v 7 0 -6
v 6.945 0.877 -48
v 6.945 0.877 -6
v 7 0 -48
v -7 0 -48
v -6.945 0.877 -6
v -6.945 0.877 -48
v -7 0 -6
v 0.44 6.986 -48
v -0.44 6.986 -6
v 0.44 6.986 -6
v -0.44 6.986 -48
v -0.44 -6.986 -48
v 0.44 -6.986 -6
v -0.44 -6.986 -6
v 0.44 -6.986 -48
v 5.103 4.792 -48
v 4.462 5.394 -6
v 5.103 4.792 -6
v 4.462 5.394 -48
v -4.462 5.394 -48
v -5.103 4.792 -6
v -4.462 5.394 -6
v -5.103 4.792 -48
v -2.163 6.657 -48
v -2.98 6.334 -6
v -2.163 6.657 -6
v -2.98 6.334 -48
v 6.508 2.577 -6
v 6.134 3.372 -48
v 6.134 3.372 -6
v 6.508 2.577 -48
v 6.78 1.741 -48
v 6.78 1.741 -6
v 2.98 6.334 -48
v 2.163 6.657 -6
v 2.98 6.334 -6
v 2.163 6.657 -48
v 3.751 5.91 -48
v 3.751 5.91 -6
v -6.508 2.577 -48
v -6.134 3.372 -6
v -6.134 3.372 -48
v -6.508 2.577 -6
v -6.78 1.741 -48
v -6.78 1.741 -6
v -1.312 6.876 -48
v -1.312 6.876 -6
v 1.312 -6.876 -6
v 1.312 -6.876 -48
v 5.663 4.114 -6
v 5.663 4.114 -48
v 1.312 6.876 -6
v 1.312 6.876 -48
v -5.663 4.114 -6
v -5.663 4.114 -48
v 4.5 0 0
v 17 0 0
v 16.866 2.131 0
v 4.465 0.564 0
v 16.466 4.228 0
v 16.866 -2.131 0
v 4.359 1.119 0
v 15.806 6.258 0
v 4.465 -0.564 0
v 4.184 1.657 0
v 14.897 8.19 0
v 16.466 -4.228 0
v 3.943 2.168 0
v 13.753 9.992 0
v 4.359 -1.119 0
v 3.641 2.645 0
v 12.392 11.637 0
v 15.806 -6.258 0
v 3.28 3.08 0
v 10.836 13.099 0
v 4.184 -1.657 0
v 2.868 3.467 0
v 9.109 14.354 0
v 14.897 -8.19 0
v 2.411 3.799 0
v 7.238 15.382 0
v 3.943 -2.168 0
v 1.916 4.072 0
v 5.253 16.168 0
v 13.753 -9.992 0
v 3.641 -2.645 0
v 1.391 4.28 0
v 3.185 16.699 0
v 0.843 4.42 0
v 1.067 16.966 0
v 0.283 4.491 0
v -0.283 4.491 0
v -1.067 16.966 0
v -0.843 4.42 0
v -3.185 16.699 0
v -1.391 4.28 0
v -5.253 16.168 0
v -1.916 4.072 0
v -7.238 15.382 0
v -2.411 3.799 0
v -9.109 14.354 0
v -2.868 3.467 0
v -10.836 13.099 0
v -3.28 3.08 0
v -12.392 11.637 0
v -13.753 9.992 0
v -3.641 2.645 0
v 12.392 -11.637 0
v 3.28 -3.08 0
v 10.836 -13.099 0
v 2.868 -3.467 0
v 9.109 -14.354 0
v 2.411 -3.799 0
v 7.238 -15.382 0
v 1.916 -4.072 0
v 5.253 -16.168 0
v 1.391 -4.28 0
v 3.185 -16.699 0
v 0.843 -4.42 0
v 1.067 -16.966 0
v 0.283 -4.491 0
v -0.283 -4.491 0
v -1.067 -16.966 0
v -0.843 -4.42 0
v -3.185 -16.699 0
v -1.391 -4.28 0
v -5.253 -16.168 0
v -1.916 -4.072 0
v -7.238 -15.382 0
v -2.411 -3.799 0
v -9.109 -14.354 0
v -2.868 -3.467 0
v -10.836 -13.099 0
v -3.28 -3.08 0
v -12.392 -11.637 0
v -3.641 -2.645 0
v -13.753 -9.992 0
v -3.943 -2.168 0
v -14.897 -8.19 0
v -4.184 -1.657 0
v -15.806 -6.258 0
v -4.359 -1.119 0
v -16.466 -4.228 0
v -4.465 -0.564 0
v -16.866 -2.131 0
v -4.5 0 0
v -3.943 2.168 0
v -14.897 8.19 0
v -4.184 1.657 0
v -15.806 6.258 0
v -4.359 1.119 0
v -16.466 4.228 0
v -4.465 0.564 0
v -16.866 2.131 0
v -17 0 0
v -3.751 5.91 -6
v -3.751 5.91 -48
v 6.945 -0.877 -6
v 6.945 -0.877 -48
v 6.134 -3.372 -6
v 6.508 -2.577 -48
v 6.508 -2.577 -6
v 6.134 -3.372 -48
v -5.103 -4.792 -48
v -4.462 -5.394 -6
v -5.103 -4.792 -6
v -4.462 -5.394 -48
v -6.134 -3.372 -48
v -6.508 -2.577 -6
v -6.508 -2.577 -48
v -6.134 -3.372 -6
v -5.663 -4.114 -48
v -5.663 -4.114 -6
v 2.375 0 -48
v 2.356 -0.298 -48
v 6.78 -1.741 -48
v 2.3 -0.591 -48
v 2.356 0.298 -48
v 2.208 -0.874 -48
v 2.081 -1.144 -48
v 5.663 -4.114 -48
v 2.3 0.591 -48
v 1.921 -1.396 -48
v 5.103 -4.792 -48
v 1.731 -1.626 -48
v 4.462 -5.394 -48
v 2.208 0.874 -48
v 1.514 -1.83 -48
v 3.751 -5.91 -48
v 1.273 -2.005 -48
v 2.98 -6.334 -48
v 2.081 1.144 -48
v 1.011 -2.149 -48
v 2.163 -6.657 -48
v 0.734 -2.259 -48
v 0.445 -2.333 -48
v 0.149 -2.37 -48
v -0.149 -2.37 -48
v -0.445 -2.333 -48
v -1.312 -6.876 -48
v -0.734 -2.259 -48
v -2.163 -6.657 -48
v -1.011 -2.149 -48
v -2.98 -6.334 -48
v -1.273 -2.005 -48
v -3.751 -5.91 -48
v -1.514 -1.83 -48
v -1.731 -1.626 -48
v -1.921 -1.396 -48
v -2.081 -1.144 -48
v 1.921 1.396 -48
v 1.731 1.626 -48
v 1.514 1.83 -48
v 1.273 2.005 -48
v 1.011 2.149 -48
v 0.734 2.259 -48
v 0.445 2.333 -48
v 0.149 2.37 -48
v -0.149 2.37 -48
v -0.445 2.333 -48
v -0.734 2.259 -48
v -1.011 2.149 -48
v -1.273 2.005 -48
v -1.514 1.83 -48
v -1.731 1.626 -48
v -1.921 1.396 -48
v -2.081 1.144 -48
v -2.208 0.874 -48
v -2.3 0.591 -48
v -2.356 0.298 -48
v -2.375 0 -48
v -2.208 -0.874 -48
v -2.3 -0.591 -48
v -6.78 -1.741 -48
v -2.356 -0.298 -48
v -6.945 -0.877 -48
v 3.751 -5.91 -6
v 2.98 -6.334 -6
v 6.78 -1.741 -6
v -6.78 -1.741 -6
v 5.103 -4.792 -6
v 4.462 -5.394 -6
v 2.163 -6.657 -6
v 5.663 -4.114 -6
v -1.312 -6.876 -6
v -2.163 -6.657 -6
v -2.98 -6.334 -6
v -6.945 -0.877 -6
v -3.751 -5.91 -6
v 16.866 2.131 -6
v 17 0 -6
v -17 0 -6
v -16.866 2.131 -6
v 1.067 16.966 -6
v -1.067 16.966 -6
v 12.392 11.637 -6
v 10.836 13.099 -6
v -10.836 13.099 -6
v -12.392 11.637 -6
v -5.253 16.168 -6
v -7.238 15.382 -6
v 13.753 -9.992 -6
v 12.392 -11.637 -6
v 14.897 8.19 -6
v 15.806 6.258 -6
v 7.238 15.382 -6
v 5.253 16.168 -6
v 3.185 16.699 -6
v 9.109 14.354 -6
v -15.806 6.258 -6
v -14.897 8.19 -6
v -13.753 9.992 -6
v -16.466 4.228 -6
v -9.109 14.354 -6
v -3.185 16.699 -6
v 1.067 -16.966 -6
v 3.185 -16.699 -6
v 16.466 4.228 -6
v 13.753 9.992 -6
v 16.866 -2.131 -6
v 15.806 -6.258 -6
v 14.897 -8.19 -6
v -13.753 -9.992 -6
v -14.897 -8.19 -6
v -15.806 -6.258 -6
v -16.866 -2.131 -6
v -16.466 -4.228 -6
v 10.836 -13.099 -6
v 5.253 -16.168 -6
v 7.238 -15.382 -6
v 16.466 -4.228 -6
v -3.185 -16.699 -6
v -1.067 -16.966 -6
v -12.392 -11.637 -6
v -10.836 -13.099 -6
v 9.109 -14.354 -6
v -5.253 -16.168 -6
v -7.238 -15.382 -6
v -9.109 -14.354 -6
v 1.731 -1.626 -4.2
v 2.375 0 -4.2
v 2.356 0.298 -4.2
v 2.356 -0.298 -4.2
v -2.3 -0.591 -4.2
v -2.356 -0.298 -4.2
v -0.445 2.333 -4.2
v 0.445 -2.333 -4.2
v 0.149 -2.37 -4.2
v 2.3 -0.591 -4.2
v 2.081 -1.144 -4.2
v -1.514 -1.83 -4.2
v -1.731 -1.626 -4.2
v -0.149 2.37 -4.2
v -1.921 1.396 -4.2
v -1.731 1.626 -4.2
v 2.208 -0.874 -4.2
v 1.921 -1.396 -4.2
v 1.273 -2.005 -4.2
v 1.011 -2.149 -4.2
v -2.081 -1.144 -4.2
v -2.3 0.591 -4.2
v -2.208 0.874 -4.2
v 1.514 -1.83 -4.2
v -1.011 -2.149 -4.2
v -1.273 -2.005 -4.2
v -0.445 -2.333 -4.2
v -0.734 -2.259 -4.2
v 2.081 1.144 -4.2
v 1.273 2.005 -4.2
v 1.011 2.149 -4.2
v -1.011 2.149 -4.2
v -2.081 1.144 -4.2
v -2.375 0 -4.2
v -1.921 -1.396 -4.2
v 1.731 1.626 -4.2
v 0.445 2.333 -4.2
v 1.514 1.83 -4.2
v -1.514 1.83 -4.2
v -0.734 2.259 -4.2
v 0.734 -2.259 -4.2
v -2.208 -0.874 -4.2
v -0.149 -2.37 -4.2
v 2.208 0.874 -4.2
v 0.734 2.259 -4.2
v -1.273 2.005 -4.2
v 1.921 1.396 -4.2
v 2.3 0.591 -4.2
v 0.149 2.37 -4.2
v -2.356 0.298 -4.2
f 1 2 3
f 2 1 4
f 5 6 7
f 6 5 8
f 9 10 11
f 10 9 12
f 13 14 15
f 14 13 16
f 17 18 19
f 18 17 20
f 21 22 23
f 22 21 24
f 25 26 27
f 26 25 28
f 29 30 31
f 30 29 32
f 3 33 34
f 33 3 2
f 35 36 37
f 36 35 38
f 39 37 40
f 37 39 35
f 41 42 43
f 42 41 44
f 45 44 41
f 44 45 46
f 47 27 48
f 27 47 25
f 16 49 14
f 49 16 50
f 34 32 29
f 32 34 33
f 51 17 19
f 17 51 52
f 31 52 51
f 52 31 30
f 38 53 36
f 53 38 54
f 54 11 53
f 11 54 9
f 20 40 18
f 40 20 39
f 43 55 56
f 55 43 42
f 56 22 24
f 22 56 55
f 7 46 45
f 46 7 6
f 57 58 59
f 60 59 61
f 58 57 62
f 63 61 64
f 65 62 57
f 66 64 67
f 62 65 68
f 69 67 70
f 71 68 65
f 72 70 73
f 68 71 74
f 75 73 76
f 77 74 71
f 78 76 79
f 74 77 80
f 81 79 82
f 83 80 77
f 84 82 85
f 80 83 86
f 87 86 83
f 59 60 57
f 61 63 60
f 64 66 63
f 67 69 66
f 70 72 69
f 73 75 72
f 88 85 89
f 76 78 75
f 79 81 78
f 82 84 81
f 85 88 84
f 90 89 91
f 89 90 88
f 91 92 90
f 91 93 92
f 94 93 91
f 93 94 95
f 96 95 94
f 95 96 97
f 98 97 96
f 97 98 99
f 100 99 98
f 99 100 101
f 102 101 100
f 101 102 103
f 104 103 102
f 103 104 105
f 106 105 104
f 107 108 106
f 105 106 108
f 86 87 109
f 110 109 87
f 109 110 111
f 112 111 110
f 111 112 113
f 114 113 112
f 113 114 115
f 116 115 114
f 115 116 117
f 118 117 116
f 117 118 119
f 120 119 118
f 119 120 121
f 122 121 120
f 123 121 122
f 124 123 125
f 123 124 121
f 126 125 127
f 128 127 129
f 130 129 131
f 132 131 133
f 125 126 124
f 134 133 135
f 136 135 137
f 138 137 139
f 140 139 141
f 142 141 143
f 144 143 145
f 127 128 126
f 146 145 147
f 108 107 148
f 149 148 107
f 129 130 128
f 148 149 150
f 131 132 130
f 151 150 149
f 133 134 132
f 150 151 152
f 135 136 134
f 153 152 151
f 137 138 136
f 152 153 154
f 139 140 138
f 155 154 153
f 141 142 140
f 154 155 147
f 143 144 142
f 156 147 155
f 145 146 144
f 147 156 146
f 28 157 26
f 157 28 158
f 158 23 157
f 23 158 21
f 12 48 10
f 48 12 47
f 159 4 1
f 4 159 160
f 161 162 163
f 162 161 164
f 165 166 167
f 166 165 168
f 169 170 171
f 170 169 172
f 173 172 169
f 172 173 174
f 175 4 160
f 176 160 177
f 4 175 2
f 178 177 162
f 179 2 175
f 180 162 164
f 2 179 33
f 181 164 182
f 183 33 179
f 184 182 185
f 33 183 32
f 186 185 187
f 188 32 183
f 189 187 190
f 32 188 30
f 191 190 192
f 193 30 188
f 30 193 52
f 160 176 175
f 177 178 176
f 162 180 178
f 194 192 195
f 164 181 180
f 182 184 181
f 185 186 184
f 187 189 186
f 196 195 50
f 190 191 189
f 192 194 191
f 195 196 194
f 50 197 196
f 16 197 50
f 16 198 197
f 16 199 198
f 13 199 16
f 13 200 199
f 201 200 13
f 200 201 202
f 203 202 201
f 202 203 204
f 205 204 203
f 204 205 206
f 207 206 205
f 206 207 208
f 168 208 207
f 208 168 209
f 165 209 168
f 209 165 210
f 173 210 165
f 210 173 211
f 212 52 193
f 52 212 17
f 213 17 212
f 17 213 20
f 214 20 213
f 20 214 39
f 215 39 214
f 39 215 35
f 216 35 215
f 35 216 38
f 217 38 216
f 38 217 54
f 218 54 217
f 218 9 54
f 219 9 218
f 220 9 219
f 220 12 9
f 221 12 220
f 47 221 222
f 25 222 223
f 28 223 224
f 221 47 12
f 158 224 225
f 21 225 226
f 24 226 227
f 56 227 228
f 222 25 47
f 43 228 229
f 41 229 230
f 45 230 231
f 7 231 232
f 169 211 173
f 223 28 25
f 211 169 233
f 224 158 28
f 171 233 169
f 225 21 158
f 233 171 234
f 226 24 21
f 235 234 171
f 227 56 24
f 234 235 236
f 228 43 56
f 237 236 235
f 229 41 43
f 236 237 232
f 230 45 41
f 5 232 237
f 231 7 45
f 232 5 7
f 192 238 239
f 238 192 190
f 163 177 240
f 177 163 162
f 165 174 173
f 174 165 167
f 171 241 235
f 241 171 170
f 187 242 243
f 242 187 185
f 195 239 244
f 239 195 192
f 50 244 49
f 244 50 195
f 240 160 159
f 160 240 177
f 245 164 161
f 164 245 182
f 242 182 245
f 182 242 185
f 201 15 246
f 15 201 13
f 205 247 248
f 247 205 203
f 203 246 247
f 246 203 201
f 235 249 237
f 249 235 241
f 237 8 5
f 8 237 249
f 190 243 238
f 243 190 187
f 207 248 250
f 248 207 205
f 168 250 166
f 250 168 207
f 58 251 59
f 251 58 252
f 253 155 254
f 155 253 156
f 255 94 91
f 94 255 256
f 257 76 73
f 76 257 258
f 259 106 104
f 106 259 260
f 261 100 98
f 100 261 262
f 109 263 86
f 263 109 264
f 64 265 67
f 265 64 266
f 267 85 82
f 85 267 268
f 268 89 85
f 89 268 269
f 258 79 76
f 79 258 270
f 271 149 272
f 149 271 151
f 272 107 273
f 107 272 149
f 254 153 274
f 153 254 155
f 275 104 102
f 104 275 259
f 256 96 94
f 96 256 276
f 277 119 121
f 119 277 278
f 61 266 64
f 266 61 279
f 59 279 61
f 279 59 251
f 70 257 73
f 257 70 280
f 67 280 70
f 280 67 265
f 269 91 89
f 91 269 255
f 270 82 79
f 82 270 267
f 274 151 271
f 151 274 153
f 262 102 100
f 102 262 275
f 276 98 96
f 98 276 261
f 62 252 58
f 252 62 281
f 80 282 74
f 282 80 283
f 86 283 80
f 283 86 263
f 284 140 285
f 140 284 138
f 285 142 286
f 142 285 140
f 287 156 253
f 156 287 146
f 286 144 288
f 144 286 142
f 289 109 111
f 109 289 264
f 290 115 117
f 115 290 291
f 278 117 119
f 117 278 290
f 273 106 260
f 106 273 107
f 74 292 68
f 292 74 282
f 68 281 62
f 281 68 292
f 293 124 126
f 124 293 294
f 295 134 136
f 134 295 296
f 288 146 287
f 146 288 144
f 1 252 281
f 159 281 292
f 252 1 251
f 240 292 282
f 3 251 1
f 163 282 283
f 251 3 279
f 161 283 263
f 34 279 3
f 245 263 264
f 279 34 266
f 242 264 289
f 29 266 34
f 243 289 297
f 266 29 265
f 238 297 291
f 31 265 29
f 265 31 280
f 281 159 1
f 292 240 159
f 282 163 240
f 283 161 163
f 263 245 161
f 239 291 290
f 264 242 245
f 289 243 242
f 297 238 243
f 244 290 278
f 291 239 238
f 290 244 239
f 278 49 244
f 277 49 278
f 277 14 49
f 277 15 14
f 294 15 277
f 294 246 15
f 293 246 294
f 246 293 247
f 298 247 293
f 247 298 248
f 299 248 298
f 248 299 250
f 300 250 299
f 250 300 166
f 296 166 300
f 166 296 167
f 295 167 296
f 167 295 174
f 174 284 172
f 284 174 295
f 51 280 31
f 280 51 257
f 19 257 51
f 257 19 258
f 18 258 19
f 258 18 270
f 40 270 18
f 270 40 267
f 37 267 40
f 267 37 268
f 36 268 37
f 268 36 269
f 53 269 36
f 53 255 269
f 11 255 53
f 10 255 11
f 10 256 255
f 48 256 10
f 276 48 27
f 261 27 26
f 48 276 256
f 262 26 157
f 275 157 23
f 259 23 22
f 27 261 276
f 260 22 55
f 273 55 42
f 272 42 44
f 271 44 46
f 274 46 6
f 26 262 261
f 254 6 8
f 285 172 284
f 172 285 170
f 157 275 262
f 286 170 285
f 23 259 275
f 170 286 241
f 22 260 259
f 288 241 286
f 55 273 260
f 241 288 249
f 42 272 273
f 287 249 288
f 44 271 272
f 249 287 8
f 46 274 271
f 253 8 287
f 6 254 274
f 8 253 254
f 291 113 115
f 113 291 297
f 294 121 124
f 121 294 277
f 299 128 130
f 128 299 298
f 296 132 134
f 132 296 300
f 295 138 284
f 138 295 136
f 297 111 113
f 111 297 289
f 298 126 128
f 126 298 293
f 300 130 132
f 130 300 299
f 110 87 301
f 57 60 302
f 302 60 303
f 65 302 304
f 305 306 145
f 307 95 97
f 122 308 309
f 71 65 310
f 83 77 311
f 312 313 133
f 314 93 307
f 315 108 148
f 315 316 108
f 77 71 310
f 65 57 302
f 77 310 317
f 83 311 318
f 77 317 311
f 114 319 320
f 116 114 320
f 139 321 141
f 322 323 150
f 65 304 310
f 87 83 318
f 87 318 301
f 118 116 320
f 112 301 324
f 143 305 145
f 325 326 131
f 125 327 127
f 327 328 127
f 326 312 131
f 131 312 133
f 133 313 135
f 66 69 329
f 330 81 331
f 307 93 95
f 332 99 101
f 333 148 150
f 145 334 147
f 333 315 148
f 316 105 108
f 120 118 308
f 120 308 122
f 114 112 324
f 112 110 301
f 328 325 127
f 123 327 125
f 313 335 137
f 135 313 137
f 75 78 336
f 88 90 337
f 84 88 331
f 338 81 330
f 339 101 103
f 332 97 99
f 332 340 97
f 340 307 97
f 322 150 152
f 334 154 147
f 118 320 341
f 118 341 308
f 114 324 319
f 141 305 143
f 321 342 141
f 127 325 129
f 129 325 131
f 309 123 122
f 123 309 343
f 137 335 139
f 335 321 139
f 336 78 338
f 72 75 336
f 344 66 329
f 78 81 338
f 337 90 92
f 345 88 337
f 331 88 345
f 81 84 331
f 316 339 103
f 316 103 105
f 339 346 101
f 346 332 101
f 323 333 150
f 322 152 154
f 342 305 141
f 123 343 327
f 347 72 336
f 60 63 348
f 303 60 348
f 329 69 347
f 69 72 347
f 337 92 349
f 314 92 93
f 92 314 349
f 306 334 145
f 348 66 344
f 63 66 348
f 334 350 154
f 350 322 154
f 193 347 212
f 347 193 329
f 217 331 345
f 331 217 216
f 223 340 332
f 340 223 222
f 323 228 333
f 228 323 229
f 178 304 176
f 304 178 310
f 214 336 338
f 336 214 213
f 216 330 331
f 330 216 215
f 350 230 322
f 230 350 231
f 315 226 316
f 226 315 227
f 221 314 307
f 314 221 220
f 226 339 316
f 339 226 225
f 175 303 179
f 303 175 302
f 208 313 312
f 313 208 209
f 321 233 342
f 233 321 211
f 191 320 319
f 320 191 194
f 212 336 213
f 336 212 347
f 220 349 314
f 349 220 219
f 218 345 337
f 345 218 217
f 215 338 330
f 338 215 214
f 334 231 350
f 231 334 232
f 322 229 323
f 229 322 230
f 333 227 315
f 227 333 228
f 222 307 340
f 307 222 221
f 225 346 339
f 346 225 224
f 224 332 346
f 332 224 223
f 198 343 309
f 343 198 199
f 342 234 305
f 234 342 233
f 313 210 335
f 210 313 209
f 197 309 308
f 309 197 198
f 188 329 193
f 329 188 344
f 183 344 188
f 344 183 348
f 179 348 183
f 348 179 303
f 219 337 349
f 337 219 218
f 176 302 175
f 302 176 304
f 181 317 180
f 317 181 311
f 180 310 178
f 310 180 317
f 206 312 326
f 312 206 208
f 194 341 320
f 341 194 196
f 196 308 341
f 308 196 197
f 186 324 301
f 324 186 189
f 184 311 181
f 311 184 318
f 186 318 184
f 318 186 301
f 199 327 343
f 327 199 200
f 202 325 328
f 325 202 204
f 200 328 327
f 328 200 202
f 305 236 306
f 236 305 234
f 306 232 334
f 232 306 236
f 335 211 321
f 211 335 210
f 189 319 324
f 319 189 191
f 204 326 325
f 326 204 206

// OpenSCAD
$fn = 50;


difference() {
	union() {
		translate(v = [0, 0, -48.0000000000]) {
			cylinder(h = 48, r = 7.0000000000);
		}
		translate(v = [0, 0, -6.0000000000]) {
			cylinder(h = 6, r = 17.0000000000);
		}
	}
	union() {
		translate(v = [0, 0, 0]) {
			rotate(a = [0, 0, 0]) {
				difference() {
					union() {
						#translate(v = [0, 0, -48.0000000000]) {
							cylinder(h = 48, r = 2.2500000000);
						}
						#translate(v = [0, 0, -4.2000000000]) {
							cylinder(h = 4.2000000000, r1 = 2.3750000000, r2 = 4.5000000000);
						}
						#translate(v = [0, 0, -48.0000000000]) {
							cylinder(h = 48, r = 2.3750000000);
						}
						#translate(v = [0, 0, -48.0000000000]) {
							cylinder(h = 48, r = 2.2500000000);
						}
					}
					union();
				}
			}
		}
	}
}
